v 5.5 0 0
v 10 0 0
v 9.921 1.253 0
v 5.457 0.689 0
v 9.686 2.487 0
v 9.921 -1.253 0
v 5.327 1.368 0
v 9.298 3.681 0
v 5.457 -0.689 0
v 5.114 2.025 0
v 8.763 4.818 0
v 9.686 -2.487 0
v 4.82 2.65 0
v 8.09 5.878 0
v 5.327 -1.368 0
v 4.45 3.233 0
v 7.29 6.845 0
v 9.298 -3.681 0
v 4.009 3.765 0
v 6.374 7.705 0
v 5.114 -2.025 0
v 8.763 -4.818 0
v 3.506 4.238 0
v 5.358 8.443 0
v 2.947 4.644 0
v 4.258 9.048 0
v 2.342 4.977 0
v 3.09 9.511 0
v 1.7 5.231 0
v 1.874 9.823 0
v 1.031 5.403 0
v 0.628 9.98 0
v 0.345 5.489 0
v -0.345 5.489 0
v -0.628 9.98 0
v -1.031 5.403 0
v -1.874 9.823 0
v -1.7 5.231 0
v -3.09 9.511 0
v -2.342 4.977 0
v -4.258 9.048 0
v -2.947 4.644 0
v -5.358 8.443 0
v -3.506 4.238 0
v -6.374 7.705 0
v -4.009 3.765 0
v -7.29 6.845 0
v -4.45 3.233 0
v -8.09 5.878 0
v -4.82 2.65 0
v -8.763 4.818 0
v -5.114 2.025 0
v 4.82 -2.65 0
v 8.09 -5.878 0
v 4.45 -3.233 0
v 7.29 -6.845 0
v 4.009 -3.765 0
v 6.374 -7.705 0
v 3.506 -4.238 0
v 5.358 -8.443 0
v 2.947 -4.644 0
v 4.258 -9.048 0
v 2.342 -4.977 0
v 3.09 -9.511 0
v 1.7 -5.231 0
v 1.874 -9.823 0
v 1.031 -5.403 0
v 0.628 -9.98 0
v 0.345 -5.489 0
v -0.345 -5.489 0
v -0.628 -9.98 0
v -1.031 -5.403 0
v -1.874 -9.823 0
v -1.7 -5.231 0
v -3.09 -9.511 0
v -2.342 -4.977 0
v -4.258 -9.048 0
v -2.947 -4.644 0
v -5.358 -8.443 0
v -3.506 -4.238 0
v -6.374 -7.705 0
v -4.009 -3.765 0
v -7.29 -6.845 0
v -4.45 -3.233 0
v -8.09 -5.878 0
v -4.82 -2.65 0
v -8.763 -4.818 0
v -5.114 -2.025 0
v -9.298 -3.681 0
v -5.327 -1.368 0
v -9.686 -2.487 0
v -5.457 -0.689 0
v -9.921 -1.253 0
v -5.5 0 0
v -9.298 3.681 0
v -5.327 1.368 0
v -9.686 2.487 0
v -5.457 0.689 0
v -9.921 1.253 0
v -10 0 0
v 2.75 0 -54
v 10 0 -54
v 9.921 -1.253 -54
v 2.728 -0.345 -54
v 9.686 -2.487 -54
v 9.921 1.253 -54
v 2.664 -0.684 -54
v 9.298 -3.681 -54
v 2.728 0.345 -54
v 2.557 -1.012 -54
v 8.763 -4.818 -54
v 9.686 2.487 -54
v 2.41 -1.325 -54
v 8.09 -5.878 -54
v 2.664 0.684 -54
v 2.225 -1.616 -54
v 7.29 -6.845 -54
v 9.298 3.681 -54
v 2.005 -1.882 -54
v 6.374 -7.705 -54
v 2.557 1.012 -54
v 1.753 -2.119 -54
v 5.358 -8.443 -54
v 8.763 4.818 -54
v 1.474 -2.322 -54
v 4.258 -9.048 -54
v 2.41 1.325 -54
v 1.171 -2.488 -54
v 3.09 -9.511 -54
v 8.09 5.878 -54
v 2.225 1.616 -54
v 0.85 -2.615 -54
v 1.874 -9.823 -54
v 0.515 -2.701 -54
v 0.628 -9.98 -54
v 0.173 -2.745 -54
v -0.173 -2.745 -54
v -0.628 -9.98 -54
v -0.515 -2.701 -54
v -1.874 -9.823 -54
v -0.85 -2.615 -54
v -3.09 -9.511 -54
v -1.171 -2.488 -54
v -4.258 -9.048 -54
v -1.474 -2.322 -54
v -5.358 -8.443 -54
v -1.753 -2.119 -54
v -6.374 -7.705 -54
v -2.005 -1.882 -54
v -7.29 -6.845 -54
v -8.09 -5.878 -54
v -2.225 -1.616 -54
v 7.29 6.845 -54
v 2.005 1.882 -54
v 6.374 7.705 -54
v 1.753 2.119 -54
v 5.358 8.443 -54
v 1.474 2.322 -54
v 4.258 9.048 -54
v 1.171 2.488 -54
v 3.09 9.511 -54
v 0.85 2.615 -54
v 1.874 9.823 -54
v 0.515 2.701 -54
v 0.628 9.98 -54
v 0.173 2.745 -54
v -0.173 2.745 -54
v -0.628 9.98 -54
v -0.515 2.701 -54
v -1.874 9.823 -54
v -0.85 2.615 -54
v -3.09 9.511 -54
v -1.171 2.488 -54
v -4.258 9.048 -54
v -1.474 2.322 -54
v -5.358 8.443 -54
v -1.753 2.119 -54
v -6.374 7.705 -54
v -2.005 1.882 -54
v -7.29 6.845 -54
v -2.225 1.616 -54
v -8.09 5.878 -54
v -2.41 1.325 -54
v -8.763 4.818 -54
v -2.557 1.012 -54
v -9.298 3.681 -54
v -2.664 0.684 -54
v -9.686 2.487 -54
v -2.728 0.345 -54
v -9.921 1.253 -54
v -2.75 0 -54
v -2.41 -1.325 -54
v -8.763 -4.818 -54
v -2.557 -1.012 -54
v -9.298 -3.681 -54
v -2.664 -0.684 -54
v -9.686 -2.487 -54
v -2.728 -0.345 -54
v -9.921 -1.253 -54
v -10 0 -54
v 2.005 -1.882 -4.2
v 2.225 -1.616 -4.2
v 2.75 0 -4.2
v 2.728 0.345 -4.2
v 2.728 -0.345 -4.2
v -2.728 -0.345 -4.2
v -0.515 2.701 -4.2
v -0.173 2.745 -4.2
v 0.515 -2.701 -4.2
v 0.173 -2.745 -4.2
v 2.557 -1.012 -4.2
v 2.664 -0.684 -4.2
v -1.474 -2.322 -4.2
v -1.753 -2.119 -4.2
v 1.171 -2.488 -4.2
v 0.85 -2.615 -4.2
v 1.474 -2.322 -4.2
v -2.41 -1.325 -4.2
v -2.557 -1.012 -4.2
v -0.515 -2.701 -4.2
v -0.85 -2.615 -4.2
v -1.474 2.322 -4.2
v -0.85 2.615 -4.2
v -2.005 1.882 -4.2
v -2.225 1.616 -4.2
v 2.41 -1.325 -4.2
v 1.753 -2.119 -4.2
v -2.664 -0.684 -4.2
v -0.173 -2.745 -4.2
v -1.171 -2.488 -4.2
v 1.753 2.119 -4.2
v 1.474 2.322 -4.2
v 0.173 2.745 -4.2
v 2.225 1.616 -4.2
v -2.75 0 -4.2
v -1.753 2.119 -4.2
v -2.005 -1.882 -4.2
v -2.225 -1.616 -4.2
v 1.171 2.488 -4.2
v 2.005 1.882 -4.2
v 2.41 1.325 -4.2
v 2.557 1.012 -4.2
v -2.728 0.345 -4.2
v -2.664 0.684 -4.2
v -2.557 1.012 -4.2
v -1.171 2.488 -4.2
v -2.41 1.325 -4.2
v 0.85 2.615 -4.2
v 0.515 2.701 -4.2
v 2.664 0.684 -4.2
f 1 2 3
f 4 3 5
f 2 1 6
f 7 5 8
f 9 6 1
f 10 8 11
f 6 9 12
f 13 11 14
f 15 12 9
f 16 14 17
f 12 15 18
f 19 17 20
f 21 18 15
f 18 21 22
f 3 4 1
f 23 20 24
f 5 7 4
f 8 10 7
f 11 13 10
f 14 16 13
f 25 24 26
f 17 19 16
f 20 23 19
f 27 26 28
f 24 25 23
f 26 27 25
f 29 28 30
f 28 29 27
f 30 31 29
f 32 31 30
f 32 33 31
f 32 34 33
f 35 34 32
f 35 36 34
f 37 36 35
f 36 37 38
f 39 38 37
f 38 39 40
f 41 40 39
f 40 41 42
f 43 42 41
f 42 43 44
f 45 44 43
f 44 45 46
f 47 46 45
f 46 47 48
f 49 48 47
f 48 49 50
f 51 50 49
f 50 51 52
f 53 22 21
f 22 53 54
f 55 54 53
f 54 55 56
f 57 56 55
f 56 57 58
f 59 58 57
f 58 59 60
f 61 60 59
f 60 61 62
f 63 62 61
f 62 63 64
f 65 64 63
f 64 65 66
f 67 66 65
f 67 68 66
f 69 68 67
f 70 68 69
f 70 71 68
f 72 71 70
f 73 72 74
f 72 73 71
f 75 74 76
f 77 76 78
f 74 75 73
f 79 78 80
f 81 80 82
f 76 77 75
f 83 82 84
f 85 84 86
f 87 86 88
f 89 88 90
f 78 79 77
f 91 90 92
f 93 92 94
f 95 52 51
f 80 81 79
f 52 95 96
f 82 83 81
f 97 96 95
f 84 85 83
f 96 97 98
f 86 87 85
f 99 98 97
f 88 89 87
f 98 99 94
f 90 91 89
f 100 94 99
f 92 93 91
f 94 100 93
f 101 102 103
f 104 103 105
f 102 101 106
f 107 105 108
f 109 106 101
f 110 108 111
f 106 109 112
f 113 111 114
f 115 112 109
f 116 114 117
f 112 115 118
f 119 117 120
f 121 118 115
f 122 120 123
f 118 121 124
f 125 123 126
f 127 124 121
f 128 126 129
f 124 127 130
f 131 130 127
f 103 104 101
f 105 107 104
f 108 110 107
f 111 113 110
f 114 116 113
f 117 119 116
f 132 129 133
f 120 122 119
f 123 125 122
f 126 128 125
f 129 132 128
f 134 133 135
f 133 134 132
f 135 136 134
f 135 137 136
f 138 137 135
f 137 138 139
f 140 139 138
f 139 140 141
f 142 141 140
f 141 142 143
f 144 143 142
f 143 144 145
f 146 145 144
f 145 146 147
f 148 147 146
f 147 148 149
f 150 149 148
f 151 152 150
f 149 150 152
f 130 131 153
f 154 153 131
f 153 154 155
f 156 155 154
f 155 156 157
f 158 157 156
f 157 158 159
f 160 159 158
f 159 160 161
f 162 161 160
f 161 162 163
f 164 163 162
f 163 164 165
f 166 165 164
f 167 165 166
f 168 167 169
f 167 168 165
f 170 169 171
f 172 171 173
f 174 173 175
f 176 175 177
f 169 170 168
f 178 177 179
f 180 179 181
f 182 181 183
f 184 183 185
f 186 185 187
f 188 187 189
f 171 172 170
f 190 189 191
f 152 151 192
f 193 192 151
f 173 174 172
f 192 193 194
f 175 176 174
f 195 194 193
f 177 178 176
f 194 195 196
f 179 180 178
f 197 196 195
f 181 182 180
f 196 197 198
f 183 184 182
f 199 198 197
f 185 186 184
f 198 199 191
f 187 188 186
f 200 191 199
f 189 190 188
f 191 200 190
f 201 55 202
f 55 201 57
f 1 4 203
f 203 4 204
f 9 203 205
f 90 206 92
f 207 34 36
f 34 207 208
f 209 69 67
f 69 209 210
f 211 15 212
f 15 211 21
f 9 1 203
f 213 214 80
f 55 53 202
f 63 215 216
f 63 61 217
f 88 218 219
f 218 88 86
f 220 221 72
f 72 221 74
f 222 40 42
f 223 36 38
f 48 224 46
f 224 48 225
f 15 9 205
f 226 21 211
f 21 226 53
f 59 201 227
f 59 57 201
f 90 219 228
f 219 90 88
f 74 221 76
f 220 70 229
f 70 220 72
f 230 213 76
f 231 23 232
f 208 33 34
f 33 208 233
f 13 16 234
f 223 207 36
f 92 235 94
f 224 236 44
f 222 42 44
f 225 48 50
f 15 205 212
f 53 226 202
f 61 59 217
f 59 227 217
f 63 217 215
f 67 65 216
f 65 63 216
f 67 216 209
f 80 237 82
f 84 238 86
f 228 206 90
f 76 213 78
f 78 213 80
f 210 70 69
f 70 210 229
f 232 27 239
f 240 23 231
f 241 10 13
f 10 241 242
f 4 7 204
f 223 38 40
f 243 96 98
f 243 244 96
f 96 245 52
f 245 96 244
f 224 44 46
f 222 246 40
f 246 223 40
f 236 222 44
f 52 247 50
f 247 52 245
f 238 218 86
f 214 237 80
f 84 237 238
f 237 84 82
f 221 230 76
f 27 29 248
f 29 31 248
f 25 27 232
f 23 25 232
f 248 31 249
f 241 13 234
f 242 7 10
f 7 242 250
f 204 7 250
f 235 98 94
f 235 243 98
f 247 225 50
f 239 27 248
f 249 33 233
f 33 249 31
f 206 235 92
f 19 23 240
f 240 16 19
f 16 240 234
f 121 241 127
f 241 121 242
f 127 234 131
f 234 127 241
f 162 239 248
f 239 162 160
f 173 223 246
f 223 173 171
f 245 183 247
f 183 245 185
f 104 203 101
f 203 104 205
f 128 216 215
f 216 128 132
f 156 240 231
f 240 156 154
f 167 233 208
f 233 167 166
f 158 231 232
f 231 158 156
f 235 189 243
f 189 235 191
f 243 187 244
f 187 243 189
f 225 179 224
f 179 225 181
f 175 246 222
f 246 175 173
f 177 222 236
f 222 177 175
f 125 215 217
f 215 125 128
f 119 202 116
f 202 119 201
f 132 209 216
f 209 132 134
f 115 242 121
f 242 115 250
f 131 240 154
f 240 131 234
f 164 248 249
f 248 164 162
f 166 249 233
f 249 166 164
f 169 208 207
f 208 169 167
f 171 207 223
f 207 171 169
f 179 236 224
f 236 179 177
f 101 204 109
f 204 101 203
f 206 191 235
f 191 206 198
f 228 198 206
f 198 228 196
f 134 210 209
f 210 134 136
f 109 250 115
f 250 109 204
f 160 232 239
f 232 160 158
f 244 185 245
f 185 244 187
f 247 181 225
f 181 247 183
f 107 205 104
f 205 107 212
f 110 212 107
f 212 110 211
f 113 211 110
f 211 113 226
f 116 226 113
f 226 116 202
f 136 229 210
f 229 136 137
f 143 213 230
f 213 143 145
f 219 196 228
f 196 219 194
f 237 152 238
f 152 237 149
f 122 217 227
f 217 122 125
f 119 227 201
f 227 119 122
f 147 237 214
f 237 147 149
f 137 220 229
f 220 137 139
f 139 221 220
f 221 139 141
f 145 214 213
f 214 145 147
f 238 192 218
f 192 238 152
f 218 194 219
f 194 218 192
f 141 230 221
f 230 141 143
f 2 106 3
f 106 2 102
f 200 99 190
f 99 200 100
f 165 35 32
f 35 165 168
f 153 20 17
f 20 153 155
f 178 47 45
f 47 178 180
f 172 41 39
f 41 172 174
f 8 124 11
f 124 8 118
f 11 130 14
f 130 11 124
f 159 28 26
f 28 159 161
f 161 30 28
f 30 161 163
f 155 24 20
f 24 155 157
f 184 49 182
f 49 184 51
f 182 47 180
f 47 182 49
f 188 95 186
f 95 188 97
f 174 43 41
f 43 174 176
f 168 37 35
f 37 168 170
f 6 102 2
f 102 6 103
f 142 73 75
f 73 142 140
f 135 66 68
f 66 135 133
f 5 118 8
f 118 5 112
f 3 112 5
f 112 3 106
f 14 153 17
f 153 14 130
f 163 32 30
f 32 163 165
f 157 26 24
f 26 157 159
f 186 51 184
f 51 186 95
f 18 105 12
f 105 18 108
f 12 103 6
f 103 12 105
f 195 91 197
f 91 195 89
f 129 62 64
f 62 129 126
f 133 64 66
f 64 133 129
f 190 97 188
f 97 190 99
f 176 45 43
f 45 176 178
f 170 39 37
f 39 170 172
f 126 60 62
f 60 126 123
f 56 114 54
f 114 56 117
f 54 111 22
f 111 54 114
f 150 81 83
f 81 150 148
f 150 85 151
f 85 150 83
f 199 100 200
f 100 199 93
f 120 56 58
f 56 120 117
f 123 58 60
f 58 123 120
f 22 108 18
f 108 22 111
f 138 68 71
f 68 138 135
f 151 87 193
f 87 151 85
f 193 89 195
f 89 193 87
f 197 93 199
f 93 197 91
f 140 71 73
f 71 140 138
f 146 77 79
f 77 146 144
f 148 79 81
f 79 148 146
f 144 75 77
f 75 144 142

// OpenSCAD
$fn = 50;


difference() {
	union() {
		translate(v = [0, 0, -54.0000000000]) {
			cylinder(h = 54, r = 10.0000000000);
		}
		cylinder(h = 0, r = 20.0000000000);
	}
	union() {
		translate(v = [0, 0, 0]) {
			rotate(a = [0, 0, 0]) {
				difference() {
					union() {
						#translate(v = [0, 0, -54.0000000000]) {
							cylinder(h = 54, r = 2.2500000000);
						}
						#translate(v = [0, 0, -4.2000000000]) {
							cylinder(h = 4.2000000000, r = 10.0000000000, r1 = 2.7500000000, r2 = 5.5000000000);
						}
						#translate(v = [0, 0, -54.0000000000]) {
							cylinder(h = 54, r = 2.7500000000);
						}
						#translate(v = [0, 0, -54.0000000000]) {
							cylinder(h = 54, r = 2.2500000000);
						}
					}
					union();
				}
			}
		}
	}
}
